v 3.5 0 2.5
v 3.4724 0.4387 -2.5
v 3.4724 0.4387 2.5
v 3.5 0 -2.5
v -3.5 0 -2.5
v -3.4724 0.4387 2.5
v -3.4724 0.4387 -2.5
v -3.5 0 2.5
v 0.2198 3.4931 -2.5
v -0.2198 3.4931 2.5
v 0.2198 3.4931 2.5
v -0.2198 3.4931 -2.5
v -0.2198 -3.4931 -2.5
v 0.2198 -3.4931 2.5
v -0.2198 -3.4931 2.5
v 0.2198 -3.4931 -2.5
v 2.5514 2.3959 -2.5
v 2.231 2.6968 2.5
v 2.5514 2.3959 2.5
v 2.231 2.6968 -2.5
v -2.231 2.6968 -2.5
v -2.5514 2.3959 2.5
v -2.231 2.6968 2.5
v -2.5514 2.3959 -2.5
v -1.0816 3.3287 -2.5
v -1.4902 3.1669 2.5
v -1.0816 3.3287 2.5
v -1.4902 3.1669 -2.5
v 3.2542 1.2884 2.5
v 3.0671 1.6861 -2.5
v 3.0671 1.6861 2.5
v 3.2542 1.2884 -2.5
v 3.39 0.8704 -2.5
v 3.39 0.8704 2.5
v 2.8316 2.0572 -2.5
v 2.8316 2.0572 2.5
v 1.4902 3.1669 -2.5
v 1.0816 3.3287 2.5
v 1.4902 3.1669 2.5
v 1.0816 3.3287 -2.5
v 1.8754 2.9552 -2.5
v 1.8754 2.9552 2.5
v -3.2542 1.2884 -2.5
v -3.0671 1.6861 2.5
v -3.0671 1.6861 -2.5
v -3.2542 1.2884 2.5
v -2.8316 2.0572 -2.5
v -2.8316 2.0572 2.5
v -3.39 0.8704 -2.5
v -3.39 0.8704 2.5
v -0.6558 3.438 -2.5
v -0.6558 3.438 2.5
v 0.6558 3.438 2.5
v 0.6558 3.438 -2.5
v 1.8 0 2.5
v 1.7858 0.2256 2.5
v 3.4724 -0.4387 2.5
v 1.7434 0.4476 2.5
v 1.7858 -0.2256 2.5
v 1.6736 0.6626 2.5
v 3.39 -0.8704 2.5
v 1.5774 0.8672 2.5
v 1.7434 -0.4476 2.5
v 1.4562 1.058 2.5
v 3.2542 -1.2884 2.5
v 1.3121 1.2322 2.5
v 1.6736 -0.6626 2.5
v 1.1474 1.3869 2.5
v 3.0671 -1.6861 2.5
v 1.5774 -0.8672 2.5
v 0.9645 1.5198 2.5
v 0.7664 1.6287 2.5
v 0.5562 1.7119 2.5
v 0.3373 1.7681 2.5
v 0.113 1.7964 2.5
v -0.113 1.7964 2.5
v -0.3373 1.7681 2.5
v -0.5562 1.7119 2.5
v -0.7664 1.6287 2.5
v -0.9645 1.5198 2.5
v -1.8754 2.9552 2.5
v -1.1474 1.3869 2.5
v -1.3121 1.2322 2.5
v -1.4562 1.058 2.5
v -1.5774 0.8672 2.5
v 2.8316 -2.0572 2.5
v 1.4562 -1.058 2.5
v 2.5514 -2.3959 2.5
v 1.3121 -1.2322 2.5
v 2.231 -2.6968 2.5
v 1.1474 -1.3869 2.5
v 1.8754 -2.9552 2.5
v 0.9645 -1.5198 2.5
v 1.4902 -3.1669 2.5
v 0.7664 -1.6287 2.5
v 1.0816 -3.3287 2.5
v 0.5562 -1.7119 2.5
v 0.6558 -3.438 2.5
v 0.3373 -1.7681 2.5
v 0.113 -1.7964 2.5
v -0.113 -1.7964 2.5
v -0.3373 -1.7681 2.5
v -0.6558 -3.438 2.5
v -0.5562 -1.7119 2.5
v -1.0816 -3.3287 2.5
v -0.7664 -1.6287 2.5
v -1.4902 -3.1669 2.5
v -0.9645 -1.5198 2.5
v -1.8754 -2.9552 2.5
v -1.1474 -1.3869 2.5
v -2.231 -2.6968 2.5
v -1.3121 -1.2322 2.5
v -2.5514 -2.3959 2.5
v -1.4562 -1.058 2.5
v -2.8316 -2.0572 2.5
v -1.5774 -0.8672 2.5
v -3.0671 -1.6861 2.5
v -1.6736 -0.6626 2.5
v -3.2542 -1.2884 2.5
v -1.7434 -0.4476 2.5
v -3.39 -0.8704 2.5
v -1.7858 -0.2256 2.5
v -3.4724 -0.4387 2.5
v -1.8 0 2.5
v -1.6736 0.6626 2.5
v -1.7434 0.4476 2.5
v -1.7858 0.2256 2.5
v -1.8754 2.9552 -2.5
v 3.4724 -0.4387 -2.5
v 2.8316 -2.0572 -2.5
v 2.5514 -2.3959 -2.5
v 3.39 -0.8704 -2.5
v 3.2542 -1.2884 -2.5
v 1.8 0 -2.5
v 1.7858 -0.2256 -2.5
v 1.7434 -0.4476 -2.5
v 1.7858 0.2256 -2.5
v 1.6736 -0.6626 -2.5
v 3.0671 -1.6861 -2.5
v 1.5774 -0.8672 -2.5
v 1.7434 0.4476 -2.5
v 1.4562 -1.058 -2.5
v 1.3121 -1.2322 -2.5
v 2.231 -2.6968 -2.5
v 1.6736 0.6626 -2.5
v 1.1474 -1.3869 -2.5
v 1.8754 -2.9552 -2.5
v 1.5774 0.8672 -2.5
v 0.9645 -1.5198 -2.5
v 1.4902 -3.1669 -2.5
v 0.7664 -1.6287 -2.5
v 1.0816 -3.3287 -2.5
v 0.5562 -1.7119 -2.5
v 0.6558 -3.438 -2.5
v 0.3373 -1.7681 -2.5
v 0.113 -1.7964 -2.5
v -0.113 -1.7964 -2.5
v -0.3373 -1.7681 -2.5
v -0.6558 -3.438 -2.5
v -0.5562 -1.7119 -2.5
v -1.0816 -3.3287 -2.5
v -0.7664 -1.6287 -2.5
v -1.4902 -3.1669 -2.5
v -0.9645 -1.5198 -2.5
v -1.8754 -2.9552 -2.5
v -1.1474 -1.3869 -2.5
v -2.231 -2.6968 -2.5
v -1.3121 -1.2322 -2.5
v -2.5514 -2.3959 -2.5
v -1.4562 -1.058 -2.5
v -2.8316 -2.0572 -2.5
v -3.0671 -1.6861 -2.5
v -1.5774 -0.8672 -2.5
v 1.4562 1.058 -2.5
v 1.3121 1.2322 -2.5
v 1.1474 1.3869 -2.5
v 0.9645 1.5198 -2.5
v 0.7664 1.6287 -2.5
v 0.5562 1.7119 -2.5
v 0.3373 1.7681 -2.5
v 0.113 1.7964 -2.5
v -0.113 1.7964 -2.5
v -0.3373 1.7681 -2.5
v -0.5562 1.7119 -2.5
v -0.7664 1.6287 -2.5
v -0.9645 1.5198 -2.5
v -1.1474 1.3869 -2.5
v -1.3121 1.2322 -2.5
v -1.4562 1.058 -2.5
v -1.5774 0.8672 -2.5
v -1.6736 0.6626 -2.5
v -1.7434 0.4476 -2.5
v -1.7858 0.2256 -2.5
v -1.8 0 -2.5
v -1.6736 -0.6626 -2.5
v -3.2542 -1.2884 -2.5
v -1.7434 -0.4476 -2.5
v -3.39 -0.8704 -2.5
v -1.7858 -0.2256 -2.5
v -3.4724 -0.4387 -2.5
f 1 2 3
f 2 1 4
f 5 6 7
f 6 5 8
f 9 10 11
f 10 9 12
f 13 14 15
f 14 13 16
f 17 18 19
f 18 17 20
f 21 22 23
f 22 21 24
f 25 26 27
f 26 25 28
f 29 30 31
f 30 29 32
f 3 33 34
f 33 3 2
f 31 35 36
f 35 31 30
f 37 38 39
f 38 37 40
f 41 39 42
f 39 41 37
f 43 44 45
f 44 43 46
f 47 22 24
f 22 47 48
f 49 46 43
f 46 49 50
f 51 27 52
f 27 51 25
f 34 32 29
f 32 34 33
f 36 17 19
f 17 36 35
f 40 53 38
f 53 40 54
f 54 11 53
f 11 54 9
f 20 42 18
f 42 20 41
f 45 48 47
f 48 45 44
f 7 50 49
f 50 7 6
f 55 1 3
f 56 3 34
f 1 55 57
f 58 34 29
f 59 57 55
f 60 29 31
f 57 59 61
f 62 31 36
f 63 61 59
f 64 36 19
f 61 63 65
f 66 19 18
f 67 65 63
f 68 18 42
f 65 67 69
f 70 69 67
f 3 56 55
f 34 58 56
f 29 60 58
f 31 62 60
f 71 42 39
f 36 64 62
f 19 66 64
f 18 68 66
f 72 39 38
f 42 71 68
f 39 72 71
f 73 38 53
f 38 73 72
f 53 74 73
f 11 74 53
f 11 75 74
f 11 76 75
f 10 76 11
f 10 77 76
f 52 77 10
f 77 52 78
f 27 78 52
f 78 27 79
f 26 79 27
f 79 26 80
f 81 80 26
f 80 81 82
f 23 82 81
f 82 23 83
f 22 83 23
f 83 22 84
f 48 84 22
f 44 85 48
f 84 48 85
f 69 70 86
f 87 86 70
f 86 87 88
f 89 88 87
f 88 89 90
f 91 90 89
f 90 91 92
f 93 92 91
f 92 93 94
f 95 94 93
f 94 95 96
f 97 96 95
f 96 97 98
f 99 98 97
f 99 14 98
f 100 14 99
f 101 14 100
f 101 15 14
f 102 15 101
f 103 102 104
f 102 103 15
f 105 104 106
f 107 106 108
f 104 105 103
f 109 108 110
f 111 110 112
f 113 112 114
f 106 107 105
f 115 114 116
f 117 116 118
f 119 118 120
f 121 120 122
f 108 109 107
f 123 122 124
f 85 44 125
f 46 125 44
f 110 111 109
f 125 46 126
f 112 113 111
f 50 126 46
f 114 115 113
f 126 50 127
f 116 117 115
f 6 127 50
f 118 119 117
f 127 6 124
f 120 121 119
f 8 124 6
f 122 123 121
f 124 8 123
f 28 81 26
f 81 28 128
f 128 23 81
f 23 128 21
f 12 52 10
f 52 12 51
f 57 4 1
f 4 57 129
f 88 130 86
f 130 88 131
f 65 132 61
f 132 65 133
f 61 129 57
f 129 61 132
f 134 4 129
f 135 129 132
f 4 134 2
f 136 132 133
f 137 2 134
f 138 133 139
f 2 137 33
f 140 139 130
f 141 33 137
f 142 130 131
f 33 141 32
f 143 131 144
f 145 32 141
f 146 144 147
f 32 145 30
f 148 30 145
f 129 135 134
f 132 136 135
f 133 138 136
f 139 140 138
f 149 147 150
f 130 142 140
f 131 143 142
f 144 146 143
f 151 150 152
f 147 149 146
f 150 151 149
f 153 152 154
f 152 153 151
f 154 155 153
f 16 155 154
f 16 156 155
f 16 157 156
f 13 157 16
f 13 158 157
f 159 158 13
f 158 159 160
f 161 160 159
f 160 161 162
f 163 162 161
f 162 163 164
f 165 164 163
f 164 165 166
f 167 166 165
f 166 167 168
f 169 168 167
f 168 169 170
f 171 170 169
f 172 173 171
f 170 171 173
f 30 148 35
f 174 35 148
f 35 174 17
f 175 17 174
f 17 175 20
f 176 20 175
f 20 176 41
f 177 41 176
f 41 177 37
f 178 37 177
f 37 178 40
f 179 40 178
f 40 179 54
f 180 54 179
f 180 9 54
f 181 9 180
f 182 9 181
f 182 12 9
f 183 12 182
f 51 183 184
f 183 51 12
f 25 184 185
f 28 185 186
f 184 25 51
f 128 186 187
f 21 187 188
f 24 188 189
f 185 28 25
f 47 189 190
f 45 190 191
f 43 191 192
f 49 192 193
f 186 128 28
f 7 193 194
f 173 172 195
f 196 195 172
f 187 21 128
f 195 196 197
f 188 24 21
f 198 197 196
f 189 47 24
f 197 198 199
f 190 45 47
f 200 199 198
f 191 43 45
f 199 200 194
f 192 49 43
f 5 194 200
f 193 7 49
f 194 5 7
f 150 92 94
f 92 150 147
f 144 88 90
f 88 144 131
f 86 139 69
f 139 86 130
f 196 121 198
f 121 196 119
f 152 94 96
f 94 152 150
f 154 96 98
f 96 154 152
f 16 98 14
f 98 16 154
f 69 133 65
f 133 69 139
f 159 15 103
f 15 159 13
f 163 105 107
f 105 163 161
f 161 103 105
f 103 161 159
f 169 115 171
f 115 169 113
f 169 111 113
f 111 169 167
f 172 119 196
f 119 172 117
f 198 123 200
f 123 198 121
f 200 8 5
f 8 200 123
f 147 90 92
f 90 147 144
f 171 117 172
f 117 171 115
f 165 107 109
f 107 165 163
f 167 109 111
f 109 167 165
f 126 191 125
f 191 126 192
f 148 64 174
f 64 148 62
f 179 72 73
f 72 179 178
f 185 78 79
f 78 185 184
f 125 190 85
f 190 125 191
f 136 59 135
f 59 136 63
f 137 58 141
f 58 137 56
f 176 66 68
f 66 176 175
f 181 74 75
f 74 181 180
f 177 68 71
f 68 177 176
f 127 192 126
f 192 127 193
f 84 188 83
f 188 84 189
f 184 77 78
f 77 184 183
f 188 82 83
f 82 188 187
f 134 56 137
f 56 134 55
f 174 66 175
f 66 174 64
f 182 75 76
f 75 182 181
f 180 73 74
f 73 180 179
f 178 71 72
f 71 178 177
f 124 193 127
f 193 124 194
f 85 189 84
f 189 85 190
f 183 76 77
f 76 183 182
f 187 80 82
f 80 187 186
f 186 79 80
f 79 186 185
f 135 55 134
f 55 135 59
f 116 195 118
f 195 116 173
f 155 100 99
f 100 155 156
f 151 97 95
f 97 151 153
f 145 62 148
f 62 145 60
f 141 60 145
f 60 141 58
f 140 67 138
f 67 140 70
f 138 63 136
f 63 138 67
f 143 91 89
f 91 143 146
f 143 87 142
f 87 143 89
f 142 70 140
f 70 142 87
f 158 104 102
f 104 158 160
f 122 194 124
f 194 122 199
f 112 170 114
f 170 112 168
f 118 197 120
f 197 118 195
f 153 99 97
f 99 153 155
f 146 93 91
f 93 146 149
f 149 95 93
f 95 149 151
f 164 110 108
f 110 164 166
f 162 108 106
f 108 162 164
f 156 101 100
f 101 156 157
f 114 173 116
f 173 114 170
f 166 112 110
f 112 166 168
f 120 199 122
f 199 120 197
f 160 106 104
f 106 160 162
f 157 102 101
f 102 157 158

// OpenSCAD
$fn = 50;


difference() {
	union() {
		translate(v = [0, 0, -2.5000000000]) {
			cylinder(h = 5, r = 3.5000000000);
		}
	}
	union() {
		translate(v = [0, 0, -100.0000000000]) {
			cylinder(h = 200, r = 1.8000000000);
		}
	}
}
